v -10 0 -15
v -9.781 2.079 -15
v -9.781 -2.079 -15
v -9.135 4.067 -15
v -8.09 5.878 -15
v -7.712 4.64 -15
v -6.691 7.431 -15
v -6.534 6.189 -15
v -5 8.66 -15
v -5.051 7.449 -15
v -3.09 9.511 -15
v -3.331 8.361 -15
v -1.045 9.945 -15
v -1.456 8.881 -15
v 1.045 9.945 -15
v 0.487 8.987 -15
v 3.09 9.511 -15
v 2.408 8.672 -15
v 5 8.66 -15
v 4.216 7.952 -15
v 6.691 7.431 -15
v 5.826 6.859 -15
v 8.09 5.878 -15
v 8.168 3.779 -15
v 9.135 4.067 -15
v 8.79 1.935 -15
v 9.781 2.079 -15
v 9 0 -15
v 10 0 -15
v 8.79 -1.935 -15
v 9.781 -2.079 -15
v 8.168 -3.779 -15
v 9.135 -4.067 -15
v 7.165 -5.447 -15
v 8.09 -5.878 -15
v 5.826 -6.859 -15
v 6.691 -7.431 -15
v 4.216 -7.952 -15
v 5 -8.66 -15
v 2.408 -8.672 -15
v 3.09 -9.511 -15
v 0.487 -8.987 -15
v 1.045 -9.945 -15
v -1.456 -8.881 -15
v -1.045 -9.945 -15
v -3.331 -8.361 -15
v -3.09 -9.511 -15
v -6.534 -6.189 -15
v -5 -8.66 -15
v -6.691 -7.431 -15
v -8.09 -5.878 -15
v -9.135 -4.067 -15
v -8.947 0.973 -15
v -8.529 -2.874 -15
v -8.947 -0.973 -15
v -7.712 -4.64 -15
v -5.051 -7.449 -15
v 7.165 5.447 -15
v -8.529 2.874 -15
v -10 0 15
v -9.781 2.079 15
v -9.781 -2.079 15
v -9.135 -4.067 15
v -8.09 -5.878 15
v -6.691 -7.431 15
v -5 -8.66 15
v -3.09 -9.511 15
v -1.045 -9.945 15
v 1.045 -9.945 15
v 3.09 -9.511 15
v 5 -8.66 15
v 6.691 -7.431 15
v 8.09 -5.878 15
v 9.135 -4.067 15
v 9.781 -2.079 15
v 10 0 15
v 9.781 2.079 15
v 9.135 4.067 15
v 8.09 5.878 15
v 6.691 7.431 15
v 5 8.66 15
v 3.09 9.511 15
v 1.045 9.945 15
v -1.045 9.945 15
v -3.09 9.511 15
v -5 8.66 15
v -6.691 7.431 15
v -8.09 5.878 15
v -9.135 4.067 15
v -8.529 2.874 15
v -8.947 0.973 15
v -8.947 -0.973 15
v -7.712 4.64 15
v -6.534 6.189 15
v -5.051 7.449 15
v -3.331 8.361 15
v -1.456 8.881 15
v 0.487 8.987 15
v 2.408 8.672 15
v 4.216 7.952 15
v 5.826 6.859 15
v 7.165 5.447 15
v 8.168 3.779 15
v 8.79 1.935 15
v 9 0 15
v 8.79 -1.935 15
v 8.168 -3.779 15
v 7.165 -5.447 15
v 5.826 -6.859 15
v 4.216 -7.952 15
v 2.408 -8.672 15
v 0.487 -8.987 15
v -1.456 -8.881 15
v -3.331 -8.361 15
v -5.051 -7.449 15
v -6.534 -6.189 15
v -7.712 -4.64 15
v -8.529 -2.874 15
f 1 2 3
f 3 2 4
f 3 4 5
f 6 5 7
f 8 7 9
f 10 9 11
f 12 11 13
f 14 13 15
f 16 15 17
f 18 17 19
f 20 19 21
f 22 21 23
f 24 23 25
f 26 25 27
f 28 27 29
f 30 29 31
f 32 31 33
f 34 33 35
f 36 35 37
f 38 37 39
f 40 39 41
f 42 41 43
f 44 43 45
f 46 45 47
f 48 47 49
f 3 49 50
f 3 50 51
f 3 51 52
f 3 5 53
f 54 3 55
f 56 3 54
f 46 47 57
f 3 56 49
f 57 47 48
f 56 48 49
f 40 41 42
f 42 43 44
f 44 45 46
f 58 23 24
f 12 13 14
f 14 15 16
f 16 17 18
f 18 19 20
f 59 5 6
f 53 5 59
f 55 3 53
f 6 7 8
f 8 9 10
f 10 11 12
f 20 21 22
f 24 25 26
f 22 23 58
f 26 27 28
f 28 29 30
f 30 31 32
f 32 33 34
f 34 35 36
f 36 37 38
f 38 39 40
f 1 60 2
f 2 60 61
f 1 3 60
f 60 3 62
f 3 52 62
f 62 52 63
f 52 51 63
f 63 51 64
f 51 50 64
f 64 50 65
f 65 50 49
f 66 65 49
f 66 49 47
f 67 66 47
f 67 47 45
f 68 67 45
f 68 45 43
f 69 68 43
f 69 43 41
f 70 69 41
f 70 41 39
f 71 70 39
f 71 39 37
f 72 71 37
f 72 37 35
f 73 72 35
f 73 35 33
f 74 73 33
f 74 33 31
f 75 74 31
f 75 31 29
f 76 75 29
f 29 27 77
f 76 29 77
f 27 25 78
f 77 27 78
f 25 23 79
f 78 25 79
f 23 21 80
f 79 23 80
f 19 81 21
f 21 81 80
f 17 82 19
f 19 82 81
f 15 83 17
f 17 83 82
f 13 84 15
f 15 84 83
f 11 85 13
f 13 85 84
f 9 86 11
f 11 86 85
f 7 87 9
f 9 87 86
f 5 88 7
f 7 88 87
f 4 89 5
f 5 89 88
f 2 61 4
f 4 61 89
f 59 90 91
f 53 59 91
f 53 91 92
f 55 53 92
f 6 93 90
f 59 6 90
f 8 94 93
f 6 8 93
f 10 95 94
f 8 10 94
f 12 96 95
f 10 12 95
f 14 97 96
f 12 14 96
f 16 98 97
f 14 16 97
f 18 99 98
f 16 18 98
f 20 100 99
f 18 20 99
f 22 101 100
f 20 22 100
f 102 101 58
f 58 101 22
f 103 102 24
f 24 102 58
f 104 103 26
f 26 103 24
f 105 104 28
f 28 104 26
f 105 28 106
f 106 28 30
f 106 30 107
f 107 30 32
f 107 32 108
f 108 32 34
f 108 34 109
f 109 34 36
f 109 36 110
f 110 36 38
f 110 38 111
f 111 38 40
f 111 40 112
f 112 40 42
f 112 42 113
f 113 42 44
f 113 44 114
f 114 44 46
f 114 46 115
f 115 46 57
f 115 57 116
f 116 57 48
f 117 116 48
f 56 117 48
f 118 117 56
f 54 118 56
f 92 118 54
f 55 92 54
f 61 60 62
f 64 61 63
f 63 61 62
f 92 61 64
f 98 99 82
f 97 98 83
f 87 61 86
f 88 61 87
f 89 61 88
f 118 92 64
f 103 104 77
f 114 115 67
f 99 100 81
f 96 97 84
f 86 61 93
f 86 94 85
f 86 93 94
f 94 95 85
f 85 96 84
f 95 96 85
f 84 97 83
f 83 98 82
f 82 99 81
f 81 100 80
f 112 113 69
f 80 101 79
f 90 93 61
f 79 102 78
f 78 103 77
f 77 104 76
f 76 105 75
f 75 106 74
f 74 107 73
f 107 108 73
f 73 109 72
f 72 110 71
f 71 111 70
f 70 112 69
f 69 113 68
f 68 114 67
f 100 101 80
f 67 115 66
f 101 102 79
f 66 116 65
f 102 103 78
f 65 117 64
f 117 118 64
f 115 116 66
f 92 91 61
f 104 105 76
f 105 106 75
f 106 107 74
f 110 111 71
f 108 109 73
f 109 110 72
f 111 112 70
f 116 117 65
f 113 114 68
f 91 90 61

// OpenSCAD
difference(){
 cylinder(h=30, r=10, center=true);
 cylinder(h=31, r=9, center=true);
}
